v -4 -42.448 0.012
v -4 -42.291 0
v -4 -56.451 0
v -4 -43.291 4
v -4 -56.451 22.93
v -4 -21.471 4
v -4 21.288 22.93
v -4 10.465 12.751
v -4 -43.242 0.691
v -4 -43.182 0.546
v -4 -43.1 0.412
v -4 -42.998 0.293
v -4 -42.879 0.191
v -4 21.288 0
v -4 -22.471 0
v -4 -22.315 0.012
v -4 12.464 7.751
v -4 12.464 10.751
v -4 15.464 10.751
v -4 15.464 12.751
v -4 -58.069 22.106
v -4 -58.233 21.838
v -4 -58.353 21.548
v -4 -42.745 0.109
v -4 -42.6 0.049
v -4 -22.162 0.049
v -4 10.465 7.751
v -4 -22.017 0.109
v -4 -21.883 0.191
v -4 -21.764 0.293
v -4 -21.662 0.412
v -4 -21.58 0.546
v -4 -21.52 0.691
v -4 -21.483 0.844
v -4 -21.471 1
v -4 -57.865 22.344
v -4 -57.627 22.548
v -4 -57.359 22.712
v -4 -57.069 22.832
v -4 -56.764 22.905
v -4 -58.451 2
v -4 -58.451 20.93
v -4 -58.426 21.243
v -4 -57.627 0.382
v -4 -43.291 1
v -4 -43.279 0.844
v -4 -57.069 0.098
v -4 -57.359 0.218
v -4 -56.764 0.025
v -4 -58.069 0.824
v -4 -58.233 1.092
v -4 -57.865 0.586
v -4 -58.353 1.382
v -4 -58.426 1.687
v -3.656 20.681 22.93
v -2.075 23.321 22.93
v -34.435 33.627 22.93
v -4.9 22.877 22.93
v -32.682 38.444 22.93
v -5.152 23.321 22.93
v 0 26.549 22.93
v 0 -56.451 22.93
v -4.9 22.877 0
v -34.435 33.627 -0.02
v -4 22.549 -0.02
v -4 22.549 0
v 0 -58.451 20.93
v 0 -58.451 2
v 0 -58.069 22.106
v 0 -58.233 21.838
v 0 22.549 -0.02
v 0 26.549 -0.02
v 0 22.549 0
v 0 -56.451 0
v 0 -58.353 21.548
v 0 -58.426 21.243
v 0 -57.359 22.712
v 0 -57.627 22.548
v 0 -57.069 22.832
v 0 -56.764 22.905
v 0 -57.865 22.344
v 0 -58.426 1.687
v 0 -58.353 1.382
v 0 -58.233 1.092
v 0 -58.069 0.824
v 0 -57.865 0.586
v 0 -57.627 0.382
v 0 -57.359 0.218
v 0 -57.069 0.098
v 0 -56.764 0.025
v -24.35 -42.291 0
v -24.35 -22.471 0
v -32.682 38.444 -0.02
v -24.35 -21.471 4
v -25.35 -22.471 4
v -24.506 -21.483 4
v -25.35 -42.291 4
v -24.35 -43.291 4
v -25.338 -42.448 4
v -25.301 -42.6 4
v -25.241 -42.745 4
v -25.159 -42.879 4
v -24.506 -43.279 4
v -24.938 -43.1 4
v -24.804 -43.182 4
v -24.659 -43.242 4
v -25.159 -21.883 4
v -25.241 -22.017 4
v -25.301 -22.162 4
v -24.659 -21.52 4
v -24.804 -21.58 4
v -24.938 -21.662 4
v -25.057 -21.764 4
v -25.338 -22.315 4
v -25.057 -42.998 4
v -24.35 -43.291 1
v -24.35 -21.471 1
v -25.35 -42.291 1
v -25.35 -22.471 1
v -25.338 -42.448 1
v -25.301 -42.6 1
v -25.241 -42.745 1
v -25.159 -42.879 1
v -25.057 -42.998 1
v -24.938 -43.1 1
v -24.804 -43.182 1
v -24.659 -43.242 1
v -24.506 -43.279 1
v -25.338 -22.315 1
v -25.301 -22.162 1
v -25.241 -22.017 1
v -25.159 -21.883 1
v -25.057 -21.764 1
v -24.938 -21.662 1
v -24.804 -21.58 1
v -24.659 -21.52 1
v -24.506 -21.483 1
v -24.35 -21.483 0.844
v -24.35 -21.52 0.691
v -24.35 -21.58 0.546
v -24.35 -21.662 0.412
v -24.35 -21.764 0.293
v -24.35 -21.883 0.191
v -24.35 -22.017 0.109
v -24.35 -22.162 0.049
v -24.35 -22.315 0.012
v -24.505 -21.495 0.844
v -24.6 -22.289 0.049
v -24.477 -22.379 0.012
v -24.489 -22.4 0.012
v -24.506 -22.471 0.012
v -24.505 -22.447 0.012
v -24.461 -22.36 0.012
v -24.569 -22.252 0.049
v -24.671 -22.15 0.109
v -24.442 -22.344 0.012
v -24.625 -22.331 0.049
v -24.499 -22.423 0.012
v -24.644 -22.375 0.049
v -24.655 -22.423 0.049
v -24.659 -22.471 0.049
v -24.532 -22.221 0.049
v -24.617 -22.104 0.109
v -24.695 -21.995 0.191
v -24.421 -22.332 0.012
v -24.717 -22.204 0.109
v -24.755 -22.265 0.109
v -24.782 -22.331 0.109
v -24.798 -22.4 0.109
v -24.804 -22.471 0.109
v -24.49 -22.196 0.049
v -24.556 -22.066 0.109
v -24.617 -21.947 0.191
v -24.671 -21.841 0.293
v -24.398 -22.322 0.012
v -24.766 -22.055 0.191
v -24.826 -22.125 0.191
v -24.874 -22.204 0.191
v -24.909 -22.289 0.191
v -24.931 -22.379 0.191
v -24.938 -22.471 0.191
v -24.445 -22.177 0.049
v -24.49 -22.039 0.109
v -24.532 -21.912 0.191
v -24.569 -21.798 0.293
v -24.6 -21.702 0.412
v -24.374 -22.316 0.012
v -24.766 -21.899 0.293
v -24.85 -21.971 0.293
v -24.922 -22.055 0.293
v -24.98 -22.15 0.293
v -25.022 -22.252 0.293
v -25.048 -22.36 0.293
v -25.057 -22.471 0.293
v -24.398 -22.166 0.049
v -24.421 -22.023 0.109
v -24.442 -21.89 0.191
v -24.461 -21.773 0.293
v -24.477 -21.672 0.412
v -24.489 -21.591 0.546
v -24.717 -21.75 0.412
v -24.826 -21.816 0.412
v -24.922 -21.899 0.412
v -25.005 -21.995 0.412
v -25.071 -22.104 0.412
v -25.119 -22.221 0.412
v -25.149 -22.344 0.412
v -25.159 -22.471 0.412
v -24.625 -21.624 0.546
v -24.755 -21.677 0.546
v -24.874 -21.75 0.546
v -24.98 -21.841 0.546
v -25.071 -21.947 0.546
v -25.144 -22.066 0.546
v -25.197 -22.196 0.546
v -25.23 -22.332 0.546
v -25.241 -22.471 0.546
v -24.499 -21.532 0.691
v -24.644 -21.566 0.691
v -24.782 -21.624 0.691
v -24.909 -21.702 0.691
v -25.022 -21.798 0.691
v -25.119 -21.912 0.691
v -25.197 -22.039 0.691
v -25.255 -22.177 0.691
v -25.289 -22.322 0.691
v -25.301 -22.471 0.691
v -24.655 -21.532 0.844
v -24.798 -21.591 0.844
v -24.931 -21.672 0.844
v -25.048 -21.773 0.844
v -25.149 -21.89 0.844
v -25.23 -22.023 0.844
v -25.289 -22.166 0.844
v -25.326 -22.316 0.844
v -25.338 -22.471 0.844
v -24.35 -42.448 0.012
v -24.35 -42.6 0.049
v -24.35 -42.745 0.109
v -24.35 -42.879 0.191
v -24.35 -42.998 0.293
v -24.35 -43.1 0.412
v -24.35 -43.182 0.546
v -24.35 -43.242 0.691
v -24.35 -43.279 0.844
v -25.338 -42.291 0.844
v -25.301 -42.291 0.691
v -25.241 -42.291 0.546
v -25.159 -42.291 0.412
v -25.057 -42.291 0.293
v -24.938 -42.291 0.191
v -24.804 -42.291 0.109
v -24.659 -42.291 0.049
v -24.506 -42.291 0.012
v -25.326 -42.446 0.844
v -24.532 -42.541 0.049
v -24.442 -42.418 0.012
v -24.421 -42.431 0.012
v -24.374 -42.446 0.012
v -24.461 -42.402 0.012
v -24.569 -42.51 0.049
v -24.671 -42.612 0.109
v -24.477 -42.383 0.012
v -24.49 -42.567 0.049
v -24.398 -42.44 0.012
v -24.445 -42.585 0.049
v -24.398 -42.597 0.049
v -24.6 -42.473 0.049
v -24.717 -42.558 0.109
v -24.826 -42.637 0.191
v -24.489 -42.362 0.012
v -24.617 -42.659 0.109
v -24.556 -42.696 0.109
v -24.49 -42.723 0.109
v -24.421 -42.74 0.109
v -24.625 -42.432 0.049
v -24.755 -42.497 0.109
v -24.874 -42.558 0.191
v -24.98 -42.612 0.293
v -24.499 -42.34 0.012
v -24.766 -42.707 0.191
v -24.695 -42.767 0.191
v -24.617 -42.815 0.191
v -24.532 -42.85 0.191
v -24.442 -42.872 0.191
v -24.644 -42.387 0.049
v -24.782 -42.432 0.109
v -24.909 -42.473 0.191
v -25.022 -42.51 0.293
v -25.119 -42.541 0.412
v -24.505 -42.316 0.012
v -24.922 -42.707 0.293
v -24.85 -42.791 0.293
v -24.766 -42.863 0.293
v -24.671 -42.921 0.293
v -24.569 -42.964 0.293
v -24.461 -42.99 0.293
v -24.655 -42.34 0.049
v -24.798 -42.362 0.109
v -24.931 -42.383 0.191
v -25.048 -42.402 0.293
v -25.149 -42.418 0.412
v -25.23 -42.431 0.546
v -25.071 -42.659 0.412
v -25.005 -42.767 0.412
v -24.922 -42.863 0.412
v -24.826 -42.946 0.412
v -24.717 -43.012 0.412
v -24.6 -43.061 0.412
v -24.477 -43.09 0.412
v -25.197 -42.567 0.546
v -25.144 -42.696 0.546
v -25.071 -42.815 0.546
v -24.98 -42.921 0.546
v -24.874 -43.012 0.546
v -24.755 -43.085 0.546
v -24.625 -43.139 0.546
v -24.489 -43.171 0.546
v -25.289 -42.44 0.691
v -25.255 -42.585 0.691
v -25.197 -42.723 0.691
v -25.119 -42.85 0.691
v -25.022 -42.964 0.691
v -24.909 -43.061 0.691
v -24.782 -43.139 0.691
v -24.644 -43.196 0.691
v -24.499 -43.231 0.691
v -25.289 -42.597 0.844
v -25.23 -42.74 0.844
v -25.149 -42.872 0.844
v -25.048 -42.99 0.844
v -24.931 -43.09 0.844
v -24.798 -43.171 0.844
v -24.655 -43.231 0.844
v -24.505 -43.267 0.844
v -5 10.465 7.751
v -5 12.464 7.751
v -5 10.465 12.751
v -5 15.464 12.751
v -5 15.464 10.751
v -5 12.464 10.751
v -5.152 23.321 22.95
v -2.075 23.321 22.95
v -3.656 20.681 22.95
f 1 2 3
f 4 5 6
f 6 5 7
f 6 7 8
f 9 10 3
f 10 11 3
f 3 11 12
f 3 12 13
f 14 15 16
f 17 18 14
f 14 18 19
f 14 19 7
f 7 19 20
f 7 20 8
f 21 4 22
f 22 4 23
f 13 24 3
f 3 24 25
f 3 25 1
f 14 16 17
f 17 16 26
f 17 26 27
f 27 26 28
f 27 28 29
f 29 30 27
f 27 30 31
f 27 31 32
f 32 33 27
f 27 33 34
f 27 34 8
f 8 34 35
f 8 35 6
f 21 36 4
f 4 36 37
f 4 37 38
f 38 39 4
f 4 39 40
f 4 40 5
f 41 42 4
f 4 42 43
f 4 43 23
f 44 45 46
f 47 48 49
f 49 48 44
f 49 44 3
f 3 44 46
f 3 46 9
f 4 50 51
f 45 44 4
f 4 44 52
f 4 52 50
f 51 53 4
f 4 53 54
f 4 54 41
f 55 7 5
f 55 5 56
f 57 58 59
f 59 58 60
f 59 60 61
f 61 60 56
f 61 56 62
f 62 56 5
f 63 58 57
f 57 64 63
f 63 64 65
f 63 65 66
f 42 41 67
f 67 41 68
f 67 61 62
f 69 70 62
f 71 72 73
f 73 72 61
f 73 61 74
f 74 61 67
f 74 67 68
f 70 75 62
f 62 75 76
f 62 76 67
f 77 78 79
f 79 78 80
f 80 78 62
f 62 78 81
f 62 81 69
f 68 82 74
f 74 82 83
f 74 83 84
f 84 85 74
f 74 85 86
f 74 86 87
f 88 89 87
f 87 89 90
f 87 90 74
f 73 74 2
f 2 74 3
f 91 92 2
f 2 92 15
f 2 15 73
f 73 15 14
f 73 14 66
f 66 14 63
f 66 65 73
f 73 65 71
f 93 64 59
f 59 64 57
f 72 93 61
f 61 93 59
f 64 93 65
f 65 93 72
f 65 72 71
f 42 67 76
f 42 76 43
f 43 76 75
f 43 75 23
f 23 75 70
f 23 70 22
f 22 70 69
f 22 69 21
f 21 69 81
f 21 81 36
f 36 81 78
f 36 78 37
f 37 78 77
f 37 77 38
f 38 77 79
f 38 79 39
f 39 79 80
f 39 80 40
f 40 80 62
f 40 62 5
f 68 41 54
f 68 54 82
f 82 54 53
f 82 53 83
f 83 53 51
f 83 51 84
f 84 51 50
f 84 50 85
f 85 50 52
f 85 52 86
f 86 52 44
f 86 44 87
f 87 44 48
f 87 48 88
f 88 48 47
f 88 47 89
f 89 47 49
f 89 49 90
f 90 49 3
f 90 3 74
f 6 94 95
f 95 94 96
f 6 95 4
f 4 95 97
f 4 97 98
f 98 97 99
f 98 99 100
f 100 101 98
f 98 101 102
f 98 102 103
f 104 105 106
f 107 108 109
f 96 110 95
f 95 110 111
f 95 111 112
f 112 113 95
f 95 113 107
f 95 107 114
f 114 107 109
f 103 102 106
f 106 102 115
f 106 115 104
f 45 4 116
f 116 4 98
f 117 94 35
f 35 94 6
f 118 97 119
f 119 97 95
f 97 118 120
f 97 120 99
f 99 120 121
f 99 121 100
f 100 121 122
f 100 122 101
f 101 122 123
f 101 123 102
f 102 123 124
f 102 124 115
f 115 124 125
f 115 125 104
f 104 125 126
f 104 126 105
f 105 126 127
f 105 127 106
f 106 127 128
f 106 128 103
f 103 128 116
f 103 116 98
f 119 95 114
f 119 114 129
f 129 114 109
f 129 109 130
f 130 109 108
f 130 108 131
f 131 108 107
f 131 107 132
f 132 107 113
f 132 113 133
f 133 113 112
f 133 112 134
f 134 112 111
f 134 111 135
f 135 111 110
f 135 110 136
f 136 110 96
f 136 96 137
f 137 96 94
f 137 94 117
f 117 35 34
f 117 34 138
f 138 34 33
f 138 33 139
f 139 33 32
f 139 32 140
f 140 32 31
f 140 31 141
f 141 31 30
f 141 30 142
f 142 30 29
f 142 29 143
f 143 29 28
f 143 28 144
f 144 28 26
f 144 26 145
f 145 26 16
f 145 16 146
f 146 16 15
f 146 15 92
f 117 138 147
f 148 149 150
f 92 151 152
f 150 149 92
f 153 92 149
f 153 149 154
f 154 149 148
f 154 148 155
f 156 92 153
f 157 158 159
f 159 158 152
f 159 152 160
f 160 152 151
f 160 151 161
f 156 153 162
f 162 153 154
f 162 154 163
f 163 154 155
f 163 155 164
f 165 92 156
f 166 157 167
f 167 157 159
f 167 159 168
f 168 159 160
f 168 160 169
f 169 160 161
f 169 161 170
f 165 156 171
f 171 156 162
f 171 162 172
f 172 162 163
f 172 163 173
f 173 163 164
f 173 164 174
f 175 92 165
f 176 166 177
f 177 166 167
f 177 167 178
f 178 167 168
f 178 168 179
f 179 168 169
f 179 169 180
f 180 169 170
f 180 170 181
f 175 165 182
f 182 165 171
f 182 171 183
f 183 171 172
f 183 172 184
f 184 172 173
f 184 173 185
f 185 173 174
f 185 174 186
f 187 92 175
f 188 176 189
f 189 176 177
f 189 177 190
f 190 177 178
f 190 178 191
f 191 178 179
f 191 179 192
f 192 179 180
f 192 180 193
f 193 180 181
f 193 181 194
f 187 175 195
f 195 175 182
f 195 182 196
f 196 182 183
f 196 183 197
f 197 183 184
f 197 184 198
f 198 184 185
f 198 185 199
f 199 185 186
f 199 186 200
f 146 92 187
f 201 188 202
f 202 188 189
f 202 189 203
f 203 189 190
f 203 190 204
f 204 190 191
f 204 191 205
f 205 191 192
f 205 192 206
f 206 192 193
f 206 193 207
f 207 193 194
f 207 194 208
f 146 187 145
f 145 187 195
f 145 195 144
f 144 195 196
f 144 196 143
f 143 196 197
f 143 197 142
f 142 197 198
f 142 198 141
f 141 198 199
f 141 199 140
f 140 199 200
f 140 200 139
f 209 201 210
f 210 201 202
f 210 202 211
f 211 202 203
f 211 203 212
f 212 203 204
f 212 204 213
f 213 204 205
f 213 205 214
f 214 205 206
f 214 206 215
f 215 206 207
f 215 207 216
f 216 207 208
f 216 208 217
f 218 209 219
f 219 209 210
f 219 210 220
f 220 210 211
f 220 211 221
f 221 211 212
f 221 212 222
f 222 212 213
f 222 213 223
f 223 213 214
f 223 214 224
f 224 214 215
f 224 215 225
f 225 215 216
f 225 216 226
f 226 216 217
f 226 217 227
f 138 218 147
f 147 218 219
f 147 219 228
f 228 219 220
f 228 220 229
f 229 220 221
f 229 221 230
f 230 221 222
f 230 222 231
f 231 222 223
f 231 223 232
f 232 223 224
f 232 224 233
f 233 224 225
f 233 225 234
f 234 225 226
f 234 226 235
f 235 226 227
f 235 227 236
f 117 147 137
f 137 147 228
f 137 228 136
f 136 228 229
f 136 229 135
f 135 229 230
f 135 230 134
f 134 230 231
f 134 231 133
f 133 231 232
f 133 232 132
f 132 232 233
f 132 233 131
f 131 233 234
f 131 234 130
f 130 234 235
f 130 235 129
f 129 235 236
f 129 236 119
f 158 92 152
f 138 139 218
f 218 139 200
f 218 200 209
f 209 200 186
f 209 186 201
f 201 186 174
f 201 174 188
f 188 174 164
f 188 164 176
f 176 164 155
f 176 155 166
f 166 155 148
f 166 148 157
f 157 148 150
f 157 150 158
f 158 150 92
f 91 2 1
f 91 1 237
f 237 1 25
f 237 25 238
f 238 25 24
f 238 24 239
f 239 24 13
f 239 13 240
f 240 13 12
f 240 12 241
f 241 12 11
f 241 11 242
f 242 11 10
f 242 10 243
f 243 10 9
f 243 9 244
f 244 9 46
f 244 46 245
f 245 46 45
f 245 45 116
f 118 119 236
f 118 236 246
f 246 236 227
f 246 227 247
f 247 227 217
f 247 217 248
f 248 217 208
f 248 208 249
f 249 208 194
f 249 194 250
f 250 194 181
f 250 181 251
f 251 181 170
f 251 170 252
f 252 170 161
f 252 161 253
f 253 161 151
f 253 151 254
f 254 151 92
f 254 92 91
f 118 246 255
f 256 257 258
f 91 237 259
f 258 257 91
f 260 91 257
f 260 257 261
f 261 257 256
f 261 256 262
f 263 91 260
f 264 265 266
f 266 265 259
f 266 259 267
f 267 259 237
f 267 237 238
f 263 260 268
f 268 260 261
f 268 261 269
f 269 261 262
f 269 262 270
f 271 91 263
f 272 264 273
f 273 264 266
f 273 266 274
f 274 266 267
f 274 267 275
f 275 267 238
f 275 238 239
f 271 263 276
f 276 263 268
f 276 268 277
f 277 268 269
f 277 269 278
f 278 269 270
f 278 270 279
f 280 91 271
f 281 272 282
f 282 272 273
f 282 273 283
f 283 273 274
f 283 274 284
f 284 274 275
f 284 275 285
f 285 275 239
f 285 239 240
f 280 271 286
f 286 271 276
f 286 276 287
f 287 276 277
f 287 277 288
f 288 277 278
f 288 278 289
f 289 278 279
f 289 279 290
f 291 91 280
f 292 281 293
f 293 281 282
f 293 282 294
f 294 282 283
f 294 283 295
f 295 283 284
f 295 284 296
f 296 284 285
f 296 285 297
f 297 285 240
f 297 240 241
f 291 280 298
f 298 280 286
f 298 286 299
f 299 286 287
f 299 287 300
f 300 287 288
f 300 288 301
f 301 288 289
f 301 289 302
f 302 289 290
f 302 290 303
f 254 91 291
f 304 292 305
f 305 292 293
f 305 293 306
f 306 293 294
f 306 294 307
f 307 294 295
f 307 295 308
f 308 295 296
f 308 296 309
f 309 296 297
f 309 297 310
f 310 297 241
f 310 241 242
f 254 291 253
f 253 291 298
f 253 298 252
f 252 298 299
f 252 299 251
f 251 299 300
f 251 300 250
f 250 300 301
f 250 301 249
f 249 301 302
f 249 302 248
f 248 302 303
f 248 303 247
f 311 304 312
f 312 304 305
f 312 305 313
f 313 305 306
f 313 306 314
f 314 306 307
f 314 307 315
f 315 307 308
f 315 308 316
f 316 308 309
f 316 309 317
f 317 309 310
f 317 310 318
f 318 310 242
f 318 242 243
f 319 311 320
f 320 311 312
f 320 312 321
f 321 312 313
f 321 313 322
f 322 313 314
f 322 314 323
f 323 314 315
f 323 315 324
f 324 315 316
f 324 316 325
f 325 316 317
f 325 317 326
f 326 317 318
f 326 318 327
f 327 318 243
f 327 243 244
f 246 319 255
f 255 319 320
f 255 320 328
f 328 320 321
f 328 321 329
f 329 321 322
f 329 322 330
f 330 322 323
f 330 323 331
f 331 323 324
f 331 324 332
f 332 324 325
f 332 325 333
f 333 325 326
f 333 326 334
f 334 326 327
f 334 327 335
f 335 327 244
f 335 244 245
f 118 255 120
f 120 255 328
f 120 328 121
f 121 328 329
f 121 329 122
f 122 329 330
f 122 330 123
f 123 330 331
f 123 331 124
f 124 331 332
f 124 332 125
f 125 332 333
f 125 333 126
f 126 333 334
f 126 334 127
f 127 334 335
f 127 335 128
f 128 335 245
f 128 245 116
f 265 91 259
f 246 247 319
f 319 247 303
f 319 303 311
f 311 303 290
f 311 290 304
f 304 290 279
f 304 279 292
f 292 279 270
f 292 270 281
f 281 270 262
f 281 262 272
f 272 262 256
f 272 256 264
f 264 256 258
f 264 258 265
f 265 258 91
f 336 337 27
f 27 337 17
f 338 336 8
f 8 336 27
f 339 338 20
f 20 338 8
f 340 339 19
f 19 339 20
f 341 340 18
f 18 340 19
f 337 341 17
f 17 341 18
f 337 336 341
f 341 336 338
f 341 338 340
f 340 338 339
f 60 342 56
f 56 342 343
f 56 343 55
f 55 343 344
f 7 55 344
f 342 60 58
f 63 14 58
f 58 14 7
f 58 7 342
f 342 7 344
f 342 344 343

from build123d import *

# Parameters (mm, degrees)
ESQUISSE1_W         = 4
ESQUISSE1_H         = 85
BOSS_EXTRU_1_DEPTH  = 22.93
BOSS_EXTRU_5_DEPTH  = 22.95
CONG_1_R            = 2
ESQUISSE7_W         = 4
ESQUISSE7_H         = 21.820353027
BOSS_EXTRU_10_DEPTH = 25.35
CONG_14_R           = 1
CONG_15_R           = 1
BOSS_EXTRU_11_DEPTH = 1
BOSS_EXTRU_12_DEPTH = 22.95


with BuildPart() as part:
    # Esquisse1 → Boss.-Extru.1 (new body)
    with BuildSketch(Plane.XY):
        with Locations((-2, -15.95097561)):
            Rectangle(ESQUISSE1_W, ESQUISSE1_H)
    extrude(amount=BOSS_EXTRU_1_DEPTH)

    # Esquisse2 → Boss.-Extru.5 (add)
    with BuildSketch(Plane.XY.offset(22.93)):
        Polygon((-32.681935281, 38.444276031), (0, 26.54902439), (0, 22.54902439), (-4, 22.54902439), (-34.435421614, 33.626611925), align=None)
    extrude(amount=-BOSS_EXTRU_5_DEPTH)

    # Congé1
    cong_1_edges = [part.edges().sort_by_distance(p)[0] for p in [
        (-2, -58.45097561, 22.93),
        (-2, -58.45097561, 0),
    ]]
    fillet(cong_1_edges, radius=CONG_1_R)

    # Esquisse7 → Boss.-Extru.10 (add)
    with BuildSketch(Plane(origin=(0, 0, 0), x_dir=(0, 0, -1), z_dir=(1, 0, 0))):
        with Locations((-2, -32.381152124)):
            Rectangle(ESQUISSE7_W, ESQUISSE7_H)
    extrude(amount=-BOSS_EXTRU_10_DEPTH)

    # Congé14
    cong_14_edges = [part.edges().sort_by_distance(p)[0] for p in [
        (-25.35, -43.291328637, 2),
        (-25.35, -21.47097561, 2),
    ]]
    fillet(cong_14_edges, radius=CONG_14_R)

    # Congé15
    cong_15_edges = [part.edges().sort_by_distance(p)[0] for p in [
        (-14.175, -43.291328637, 0),
        (-25.35, -32.381152123, 0),
        (-14.175, -21.47097561, 0),
        (-25.057106781, -21.763868829, 0),
        (-25.057106781, -42.998435418, 0),
    ]]
    fillet(cong_15_edges, radius=CONG_15_R)

    # Esquisse10 → Boss.-Extru.11 (add)
    with BuildSketch(Plane.ZY.offset(4)):
        Polygon((7.751431337, 10.464501792), (12.751431337, 10.464501792), (12.751431337, 15.464501792), (10.751431337, 15.464501792), (10.751431337, 12.464501792), (7.751431337, 12.464501792), align=None)
    extrude(amount=BOSS_EXTRU_11_DEPTH)

    # Esquisse13 → Boss.-Extru.12 (add)
    with BuildSketch(Plane.XY):
        Polygon((-5.151966744, 23.320636857), (-3.656231692, 20.681104413), (-2.075100003, 23.320636857), align=None)
    extrude(amount=BOSS_EXTRU_12_DEPTH)


solid = part.part
